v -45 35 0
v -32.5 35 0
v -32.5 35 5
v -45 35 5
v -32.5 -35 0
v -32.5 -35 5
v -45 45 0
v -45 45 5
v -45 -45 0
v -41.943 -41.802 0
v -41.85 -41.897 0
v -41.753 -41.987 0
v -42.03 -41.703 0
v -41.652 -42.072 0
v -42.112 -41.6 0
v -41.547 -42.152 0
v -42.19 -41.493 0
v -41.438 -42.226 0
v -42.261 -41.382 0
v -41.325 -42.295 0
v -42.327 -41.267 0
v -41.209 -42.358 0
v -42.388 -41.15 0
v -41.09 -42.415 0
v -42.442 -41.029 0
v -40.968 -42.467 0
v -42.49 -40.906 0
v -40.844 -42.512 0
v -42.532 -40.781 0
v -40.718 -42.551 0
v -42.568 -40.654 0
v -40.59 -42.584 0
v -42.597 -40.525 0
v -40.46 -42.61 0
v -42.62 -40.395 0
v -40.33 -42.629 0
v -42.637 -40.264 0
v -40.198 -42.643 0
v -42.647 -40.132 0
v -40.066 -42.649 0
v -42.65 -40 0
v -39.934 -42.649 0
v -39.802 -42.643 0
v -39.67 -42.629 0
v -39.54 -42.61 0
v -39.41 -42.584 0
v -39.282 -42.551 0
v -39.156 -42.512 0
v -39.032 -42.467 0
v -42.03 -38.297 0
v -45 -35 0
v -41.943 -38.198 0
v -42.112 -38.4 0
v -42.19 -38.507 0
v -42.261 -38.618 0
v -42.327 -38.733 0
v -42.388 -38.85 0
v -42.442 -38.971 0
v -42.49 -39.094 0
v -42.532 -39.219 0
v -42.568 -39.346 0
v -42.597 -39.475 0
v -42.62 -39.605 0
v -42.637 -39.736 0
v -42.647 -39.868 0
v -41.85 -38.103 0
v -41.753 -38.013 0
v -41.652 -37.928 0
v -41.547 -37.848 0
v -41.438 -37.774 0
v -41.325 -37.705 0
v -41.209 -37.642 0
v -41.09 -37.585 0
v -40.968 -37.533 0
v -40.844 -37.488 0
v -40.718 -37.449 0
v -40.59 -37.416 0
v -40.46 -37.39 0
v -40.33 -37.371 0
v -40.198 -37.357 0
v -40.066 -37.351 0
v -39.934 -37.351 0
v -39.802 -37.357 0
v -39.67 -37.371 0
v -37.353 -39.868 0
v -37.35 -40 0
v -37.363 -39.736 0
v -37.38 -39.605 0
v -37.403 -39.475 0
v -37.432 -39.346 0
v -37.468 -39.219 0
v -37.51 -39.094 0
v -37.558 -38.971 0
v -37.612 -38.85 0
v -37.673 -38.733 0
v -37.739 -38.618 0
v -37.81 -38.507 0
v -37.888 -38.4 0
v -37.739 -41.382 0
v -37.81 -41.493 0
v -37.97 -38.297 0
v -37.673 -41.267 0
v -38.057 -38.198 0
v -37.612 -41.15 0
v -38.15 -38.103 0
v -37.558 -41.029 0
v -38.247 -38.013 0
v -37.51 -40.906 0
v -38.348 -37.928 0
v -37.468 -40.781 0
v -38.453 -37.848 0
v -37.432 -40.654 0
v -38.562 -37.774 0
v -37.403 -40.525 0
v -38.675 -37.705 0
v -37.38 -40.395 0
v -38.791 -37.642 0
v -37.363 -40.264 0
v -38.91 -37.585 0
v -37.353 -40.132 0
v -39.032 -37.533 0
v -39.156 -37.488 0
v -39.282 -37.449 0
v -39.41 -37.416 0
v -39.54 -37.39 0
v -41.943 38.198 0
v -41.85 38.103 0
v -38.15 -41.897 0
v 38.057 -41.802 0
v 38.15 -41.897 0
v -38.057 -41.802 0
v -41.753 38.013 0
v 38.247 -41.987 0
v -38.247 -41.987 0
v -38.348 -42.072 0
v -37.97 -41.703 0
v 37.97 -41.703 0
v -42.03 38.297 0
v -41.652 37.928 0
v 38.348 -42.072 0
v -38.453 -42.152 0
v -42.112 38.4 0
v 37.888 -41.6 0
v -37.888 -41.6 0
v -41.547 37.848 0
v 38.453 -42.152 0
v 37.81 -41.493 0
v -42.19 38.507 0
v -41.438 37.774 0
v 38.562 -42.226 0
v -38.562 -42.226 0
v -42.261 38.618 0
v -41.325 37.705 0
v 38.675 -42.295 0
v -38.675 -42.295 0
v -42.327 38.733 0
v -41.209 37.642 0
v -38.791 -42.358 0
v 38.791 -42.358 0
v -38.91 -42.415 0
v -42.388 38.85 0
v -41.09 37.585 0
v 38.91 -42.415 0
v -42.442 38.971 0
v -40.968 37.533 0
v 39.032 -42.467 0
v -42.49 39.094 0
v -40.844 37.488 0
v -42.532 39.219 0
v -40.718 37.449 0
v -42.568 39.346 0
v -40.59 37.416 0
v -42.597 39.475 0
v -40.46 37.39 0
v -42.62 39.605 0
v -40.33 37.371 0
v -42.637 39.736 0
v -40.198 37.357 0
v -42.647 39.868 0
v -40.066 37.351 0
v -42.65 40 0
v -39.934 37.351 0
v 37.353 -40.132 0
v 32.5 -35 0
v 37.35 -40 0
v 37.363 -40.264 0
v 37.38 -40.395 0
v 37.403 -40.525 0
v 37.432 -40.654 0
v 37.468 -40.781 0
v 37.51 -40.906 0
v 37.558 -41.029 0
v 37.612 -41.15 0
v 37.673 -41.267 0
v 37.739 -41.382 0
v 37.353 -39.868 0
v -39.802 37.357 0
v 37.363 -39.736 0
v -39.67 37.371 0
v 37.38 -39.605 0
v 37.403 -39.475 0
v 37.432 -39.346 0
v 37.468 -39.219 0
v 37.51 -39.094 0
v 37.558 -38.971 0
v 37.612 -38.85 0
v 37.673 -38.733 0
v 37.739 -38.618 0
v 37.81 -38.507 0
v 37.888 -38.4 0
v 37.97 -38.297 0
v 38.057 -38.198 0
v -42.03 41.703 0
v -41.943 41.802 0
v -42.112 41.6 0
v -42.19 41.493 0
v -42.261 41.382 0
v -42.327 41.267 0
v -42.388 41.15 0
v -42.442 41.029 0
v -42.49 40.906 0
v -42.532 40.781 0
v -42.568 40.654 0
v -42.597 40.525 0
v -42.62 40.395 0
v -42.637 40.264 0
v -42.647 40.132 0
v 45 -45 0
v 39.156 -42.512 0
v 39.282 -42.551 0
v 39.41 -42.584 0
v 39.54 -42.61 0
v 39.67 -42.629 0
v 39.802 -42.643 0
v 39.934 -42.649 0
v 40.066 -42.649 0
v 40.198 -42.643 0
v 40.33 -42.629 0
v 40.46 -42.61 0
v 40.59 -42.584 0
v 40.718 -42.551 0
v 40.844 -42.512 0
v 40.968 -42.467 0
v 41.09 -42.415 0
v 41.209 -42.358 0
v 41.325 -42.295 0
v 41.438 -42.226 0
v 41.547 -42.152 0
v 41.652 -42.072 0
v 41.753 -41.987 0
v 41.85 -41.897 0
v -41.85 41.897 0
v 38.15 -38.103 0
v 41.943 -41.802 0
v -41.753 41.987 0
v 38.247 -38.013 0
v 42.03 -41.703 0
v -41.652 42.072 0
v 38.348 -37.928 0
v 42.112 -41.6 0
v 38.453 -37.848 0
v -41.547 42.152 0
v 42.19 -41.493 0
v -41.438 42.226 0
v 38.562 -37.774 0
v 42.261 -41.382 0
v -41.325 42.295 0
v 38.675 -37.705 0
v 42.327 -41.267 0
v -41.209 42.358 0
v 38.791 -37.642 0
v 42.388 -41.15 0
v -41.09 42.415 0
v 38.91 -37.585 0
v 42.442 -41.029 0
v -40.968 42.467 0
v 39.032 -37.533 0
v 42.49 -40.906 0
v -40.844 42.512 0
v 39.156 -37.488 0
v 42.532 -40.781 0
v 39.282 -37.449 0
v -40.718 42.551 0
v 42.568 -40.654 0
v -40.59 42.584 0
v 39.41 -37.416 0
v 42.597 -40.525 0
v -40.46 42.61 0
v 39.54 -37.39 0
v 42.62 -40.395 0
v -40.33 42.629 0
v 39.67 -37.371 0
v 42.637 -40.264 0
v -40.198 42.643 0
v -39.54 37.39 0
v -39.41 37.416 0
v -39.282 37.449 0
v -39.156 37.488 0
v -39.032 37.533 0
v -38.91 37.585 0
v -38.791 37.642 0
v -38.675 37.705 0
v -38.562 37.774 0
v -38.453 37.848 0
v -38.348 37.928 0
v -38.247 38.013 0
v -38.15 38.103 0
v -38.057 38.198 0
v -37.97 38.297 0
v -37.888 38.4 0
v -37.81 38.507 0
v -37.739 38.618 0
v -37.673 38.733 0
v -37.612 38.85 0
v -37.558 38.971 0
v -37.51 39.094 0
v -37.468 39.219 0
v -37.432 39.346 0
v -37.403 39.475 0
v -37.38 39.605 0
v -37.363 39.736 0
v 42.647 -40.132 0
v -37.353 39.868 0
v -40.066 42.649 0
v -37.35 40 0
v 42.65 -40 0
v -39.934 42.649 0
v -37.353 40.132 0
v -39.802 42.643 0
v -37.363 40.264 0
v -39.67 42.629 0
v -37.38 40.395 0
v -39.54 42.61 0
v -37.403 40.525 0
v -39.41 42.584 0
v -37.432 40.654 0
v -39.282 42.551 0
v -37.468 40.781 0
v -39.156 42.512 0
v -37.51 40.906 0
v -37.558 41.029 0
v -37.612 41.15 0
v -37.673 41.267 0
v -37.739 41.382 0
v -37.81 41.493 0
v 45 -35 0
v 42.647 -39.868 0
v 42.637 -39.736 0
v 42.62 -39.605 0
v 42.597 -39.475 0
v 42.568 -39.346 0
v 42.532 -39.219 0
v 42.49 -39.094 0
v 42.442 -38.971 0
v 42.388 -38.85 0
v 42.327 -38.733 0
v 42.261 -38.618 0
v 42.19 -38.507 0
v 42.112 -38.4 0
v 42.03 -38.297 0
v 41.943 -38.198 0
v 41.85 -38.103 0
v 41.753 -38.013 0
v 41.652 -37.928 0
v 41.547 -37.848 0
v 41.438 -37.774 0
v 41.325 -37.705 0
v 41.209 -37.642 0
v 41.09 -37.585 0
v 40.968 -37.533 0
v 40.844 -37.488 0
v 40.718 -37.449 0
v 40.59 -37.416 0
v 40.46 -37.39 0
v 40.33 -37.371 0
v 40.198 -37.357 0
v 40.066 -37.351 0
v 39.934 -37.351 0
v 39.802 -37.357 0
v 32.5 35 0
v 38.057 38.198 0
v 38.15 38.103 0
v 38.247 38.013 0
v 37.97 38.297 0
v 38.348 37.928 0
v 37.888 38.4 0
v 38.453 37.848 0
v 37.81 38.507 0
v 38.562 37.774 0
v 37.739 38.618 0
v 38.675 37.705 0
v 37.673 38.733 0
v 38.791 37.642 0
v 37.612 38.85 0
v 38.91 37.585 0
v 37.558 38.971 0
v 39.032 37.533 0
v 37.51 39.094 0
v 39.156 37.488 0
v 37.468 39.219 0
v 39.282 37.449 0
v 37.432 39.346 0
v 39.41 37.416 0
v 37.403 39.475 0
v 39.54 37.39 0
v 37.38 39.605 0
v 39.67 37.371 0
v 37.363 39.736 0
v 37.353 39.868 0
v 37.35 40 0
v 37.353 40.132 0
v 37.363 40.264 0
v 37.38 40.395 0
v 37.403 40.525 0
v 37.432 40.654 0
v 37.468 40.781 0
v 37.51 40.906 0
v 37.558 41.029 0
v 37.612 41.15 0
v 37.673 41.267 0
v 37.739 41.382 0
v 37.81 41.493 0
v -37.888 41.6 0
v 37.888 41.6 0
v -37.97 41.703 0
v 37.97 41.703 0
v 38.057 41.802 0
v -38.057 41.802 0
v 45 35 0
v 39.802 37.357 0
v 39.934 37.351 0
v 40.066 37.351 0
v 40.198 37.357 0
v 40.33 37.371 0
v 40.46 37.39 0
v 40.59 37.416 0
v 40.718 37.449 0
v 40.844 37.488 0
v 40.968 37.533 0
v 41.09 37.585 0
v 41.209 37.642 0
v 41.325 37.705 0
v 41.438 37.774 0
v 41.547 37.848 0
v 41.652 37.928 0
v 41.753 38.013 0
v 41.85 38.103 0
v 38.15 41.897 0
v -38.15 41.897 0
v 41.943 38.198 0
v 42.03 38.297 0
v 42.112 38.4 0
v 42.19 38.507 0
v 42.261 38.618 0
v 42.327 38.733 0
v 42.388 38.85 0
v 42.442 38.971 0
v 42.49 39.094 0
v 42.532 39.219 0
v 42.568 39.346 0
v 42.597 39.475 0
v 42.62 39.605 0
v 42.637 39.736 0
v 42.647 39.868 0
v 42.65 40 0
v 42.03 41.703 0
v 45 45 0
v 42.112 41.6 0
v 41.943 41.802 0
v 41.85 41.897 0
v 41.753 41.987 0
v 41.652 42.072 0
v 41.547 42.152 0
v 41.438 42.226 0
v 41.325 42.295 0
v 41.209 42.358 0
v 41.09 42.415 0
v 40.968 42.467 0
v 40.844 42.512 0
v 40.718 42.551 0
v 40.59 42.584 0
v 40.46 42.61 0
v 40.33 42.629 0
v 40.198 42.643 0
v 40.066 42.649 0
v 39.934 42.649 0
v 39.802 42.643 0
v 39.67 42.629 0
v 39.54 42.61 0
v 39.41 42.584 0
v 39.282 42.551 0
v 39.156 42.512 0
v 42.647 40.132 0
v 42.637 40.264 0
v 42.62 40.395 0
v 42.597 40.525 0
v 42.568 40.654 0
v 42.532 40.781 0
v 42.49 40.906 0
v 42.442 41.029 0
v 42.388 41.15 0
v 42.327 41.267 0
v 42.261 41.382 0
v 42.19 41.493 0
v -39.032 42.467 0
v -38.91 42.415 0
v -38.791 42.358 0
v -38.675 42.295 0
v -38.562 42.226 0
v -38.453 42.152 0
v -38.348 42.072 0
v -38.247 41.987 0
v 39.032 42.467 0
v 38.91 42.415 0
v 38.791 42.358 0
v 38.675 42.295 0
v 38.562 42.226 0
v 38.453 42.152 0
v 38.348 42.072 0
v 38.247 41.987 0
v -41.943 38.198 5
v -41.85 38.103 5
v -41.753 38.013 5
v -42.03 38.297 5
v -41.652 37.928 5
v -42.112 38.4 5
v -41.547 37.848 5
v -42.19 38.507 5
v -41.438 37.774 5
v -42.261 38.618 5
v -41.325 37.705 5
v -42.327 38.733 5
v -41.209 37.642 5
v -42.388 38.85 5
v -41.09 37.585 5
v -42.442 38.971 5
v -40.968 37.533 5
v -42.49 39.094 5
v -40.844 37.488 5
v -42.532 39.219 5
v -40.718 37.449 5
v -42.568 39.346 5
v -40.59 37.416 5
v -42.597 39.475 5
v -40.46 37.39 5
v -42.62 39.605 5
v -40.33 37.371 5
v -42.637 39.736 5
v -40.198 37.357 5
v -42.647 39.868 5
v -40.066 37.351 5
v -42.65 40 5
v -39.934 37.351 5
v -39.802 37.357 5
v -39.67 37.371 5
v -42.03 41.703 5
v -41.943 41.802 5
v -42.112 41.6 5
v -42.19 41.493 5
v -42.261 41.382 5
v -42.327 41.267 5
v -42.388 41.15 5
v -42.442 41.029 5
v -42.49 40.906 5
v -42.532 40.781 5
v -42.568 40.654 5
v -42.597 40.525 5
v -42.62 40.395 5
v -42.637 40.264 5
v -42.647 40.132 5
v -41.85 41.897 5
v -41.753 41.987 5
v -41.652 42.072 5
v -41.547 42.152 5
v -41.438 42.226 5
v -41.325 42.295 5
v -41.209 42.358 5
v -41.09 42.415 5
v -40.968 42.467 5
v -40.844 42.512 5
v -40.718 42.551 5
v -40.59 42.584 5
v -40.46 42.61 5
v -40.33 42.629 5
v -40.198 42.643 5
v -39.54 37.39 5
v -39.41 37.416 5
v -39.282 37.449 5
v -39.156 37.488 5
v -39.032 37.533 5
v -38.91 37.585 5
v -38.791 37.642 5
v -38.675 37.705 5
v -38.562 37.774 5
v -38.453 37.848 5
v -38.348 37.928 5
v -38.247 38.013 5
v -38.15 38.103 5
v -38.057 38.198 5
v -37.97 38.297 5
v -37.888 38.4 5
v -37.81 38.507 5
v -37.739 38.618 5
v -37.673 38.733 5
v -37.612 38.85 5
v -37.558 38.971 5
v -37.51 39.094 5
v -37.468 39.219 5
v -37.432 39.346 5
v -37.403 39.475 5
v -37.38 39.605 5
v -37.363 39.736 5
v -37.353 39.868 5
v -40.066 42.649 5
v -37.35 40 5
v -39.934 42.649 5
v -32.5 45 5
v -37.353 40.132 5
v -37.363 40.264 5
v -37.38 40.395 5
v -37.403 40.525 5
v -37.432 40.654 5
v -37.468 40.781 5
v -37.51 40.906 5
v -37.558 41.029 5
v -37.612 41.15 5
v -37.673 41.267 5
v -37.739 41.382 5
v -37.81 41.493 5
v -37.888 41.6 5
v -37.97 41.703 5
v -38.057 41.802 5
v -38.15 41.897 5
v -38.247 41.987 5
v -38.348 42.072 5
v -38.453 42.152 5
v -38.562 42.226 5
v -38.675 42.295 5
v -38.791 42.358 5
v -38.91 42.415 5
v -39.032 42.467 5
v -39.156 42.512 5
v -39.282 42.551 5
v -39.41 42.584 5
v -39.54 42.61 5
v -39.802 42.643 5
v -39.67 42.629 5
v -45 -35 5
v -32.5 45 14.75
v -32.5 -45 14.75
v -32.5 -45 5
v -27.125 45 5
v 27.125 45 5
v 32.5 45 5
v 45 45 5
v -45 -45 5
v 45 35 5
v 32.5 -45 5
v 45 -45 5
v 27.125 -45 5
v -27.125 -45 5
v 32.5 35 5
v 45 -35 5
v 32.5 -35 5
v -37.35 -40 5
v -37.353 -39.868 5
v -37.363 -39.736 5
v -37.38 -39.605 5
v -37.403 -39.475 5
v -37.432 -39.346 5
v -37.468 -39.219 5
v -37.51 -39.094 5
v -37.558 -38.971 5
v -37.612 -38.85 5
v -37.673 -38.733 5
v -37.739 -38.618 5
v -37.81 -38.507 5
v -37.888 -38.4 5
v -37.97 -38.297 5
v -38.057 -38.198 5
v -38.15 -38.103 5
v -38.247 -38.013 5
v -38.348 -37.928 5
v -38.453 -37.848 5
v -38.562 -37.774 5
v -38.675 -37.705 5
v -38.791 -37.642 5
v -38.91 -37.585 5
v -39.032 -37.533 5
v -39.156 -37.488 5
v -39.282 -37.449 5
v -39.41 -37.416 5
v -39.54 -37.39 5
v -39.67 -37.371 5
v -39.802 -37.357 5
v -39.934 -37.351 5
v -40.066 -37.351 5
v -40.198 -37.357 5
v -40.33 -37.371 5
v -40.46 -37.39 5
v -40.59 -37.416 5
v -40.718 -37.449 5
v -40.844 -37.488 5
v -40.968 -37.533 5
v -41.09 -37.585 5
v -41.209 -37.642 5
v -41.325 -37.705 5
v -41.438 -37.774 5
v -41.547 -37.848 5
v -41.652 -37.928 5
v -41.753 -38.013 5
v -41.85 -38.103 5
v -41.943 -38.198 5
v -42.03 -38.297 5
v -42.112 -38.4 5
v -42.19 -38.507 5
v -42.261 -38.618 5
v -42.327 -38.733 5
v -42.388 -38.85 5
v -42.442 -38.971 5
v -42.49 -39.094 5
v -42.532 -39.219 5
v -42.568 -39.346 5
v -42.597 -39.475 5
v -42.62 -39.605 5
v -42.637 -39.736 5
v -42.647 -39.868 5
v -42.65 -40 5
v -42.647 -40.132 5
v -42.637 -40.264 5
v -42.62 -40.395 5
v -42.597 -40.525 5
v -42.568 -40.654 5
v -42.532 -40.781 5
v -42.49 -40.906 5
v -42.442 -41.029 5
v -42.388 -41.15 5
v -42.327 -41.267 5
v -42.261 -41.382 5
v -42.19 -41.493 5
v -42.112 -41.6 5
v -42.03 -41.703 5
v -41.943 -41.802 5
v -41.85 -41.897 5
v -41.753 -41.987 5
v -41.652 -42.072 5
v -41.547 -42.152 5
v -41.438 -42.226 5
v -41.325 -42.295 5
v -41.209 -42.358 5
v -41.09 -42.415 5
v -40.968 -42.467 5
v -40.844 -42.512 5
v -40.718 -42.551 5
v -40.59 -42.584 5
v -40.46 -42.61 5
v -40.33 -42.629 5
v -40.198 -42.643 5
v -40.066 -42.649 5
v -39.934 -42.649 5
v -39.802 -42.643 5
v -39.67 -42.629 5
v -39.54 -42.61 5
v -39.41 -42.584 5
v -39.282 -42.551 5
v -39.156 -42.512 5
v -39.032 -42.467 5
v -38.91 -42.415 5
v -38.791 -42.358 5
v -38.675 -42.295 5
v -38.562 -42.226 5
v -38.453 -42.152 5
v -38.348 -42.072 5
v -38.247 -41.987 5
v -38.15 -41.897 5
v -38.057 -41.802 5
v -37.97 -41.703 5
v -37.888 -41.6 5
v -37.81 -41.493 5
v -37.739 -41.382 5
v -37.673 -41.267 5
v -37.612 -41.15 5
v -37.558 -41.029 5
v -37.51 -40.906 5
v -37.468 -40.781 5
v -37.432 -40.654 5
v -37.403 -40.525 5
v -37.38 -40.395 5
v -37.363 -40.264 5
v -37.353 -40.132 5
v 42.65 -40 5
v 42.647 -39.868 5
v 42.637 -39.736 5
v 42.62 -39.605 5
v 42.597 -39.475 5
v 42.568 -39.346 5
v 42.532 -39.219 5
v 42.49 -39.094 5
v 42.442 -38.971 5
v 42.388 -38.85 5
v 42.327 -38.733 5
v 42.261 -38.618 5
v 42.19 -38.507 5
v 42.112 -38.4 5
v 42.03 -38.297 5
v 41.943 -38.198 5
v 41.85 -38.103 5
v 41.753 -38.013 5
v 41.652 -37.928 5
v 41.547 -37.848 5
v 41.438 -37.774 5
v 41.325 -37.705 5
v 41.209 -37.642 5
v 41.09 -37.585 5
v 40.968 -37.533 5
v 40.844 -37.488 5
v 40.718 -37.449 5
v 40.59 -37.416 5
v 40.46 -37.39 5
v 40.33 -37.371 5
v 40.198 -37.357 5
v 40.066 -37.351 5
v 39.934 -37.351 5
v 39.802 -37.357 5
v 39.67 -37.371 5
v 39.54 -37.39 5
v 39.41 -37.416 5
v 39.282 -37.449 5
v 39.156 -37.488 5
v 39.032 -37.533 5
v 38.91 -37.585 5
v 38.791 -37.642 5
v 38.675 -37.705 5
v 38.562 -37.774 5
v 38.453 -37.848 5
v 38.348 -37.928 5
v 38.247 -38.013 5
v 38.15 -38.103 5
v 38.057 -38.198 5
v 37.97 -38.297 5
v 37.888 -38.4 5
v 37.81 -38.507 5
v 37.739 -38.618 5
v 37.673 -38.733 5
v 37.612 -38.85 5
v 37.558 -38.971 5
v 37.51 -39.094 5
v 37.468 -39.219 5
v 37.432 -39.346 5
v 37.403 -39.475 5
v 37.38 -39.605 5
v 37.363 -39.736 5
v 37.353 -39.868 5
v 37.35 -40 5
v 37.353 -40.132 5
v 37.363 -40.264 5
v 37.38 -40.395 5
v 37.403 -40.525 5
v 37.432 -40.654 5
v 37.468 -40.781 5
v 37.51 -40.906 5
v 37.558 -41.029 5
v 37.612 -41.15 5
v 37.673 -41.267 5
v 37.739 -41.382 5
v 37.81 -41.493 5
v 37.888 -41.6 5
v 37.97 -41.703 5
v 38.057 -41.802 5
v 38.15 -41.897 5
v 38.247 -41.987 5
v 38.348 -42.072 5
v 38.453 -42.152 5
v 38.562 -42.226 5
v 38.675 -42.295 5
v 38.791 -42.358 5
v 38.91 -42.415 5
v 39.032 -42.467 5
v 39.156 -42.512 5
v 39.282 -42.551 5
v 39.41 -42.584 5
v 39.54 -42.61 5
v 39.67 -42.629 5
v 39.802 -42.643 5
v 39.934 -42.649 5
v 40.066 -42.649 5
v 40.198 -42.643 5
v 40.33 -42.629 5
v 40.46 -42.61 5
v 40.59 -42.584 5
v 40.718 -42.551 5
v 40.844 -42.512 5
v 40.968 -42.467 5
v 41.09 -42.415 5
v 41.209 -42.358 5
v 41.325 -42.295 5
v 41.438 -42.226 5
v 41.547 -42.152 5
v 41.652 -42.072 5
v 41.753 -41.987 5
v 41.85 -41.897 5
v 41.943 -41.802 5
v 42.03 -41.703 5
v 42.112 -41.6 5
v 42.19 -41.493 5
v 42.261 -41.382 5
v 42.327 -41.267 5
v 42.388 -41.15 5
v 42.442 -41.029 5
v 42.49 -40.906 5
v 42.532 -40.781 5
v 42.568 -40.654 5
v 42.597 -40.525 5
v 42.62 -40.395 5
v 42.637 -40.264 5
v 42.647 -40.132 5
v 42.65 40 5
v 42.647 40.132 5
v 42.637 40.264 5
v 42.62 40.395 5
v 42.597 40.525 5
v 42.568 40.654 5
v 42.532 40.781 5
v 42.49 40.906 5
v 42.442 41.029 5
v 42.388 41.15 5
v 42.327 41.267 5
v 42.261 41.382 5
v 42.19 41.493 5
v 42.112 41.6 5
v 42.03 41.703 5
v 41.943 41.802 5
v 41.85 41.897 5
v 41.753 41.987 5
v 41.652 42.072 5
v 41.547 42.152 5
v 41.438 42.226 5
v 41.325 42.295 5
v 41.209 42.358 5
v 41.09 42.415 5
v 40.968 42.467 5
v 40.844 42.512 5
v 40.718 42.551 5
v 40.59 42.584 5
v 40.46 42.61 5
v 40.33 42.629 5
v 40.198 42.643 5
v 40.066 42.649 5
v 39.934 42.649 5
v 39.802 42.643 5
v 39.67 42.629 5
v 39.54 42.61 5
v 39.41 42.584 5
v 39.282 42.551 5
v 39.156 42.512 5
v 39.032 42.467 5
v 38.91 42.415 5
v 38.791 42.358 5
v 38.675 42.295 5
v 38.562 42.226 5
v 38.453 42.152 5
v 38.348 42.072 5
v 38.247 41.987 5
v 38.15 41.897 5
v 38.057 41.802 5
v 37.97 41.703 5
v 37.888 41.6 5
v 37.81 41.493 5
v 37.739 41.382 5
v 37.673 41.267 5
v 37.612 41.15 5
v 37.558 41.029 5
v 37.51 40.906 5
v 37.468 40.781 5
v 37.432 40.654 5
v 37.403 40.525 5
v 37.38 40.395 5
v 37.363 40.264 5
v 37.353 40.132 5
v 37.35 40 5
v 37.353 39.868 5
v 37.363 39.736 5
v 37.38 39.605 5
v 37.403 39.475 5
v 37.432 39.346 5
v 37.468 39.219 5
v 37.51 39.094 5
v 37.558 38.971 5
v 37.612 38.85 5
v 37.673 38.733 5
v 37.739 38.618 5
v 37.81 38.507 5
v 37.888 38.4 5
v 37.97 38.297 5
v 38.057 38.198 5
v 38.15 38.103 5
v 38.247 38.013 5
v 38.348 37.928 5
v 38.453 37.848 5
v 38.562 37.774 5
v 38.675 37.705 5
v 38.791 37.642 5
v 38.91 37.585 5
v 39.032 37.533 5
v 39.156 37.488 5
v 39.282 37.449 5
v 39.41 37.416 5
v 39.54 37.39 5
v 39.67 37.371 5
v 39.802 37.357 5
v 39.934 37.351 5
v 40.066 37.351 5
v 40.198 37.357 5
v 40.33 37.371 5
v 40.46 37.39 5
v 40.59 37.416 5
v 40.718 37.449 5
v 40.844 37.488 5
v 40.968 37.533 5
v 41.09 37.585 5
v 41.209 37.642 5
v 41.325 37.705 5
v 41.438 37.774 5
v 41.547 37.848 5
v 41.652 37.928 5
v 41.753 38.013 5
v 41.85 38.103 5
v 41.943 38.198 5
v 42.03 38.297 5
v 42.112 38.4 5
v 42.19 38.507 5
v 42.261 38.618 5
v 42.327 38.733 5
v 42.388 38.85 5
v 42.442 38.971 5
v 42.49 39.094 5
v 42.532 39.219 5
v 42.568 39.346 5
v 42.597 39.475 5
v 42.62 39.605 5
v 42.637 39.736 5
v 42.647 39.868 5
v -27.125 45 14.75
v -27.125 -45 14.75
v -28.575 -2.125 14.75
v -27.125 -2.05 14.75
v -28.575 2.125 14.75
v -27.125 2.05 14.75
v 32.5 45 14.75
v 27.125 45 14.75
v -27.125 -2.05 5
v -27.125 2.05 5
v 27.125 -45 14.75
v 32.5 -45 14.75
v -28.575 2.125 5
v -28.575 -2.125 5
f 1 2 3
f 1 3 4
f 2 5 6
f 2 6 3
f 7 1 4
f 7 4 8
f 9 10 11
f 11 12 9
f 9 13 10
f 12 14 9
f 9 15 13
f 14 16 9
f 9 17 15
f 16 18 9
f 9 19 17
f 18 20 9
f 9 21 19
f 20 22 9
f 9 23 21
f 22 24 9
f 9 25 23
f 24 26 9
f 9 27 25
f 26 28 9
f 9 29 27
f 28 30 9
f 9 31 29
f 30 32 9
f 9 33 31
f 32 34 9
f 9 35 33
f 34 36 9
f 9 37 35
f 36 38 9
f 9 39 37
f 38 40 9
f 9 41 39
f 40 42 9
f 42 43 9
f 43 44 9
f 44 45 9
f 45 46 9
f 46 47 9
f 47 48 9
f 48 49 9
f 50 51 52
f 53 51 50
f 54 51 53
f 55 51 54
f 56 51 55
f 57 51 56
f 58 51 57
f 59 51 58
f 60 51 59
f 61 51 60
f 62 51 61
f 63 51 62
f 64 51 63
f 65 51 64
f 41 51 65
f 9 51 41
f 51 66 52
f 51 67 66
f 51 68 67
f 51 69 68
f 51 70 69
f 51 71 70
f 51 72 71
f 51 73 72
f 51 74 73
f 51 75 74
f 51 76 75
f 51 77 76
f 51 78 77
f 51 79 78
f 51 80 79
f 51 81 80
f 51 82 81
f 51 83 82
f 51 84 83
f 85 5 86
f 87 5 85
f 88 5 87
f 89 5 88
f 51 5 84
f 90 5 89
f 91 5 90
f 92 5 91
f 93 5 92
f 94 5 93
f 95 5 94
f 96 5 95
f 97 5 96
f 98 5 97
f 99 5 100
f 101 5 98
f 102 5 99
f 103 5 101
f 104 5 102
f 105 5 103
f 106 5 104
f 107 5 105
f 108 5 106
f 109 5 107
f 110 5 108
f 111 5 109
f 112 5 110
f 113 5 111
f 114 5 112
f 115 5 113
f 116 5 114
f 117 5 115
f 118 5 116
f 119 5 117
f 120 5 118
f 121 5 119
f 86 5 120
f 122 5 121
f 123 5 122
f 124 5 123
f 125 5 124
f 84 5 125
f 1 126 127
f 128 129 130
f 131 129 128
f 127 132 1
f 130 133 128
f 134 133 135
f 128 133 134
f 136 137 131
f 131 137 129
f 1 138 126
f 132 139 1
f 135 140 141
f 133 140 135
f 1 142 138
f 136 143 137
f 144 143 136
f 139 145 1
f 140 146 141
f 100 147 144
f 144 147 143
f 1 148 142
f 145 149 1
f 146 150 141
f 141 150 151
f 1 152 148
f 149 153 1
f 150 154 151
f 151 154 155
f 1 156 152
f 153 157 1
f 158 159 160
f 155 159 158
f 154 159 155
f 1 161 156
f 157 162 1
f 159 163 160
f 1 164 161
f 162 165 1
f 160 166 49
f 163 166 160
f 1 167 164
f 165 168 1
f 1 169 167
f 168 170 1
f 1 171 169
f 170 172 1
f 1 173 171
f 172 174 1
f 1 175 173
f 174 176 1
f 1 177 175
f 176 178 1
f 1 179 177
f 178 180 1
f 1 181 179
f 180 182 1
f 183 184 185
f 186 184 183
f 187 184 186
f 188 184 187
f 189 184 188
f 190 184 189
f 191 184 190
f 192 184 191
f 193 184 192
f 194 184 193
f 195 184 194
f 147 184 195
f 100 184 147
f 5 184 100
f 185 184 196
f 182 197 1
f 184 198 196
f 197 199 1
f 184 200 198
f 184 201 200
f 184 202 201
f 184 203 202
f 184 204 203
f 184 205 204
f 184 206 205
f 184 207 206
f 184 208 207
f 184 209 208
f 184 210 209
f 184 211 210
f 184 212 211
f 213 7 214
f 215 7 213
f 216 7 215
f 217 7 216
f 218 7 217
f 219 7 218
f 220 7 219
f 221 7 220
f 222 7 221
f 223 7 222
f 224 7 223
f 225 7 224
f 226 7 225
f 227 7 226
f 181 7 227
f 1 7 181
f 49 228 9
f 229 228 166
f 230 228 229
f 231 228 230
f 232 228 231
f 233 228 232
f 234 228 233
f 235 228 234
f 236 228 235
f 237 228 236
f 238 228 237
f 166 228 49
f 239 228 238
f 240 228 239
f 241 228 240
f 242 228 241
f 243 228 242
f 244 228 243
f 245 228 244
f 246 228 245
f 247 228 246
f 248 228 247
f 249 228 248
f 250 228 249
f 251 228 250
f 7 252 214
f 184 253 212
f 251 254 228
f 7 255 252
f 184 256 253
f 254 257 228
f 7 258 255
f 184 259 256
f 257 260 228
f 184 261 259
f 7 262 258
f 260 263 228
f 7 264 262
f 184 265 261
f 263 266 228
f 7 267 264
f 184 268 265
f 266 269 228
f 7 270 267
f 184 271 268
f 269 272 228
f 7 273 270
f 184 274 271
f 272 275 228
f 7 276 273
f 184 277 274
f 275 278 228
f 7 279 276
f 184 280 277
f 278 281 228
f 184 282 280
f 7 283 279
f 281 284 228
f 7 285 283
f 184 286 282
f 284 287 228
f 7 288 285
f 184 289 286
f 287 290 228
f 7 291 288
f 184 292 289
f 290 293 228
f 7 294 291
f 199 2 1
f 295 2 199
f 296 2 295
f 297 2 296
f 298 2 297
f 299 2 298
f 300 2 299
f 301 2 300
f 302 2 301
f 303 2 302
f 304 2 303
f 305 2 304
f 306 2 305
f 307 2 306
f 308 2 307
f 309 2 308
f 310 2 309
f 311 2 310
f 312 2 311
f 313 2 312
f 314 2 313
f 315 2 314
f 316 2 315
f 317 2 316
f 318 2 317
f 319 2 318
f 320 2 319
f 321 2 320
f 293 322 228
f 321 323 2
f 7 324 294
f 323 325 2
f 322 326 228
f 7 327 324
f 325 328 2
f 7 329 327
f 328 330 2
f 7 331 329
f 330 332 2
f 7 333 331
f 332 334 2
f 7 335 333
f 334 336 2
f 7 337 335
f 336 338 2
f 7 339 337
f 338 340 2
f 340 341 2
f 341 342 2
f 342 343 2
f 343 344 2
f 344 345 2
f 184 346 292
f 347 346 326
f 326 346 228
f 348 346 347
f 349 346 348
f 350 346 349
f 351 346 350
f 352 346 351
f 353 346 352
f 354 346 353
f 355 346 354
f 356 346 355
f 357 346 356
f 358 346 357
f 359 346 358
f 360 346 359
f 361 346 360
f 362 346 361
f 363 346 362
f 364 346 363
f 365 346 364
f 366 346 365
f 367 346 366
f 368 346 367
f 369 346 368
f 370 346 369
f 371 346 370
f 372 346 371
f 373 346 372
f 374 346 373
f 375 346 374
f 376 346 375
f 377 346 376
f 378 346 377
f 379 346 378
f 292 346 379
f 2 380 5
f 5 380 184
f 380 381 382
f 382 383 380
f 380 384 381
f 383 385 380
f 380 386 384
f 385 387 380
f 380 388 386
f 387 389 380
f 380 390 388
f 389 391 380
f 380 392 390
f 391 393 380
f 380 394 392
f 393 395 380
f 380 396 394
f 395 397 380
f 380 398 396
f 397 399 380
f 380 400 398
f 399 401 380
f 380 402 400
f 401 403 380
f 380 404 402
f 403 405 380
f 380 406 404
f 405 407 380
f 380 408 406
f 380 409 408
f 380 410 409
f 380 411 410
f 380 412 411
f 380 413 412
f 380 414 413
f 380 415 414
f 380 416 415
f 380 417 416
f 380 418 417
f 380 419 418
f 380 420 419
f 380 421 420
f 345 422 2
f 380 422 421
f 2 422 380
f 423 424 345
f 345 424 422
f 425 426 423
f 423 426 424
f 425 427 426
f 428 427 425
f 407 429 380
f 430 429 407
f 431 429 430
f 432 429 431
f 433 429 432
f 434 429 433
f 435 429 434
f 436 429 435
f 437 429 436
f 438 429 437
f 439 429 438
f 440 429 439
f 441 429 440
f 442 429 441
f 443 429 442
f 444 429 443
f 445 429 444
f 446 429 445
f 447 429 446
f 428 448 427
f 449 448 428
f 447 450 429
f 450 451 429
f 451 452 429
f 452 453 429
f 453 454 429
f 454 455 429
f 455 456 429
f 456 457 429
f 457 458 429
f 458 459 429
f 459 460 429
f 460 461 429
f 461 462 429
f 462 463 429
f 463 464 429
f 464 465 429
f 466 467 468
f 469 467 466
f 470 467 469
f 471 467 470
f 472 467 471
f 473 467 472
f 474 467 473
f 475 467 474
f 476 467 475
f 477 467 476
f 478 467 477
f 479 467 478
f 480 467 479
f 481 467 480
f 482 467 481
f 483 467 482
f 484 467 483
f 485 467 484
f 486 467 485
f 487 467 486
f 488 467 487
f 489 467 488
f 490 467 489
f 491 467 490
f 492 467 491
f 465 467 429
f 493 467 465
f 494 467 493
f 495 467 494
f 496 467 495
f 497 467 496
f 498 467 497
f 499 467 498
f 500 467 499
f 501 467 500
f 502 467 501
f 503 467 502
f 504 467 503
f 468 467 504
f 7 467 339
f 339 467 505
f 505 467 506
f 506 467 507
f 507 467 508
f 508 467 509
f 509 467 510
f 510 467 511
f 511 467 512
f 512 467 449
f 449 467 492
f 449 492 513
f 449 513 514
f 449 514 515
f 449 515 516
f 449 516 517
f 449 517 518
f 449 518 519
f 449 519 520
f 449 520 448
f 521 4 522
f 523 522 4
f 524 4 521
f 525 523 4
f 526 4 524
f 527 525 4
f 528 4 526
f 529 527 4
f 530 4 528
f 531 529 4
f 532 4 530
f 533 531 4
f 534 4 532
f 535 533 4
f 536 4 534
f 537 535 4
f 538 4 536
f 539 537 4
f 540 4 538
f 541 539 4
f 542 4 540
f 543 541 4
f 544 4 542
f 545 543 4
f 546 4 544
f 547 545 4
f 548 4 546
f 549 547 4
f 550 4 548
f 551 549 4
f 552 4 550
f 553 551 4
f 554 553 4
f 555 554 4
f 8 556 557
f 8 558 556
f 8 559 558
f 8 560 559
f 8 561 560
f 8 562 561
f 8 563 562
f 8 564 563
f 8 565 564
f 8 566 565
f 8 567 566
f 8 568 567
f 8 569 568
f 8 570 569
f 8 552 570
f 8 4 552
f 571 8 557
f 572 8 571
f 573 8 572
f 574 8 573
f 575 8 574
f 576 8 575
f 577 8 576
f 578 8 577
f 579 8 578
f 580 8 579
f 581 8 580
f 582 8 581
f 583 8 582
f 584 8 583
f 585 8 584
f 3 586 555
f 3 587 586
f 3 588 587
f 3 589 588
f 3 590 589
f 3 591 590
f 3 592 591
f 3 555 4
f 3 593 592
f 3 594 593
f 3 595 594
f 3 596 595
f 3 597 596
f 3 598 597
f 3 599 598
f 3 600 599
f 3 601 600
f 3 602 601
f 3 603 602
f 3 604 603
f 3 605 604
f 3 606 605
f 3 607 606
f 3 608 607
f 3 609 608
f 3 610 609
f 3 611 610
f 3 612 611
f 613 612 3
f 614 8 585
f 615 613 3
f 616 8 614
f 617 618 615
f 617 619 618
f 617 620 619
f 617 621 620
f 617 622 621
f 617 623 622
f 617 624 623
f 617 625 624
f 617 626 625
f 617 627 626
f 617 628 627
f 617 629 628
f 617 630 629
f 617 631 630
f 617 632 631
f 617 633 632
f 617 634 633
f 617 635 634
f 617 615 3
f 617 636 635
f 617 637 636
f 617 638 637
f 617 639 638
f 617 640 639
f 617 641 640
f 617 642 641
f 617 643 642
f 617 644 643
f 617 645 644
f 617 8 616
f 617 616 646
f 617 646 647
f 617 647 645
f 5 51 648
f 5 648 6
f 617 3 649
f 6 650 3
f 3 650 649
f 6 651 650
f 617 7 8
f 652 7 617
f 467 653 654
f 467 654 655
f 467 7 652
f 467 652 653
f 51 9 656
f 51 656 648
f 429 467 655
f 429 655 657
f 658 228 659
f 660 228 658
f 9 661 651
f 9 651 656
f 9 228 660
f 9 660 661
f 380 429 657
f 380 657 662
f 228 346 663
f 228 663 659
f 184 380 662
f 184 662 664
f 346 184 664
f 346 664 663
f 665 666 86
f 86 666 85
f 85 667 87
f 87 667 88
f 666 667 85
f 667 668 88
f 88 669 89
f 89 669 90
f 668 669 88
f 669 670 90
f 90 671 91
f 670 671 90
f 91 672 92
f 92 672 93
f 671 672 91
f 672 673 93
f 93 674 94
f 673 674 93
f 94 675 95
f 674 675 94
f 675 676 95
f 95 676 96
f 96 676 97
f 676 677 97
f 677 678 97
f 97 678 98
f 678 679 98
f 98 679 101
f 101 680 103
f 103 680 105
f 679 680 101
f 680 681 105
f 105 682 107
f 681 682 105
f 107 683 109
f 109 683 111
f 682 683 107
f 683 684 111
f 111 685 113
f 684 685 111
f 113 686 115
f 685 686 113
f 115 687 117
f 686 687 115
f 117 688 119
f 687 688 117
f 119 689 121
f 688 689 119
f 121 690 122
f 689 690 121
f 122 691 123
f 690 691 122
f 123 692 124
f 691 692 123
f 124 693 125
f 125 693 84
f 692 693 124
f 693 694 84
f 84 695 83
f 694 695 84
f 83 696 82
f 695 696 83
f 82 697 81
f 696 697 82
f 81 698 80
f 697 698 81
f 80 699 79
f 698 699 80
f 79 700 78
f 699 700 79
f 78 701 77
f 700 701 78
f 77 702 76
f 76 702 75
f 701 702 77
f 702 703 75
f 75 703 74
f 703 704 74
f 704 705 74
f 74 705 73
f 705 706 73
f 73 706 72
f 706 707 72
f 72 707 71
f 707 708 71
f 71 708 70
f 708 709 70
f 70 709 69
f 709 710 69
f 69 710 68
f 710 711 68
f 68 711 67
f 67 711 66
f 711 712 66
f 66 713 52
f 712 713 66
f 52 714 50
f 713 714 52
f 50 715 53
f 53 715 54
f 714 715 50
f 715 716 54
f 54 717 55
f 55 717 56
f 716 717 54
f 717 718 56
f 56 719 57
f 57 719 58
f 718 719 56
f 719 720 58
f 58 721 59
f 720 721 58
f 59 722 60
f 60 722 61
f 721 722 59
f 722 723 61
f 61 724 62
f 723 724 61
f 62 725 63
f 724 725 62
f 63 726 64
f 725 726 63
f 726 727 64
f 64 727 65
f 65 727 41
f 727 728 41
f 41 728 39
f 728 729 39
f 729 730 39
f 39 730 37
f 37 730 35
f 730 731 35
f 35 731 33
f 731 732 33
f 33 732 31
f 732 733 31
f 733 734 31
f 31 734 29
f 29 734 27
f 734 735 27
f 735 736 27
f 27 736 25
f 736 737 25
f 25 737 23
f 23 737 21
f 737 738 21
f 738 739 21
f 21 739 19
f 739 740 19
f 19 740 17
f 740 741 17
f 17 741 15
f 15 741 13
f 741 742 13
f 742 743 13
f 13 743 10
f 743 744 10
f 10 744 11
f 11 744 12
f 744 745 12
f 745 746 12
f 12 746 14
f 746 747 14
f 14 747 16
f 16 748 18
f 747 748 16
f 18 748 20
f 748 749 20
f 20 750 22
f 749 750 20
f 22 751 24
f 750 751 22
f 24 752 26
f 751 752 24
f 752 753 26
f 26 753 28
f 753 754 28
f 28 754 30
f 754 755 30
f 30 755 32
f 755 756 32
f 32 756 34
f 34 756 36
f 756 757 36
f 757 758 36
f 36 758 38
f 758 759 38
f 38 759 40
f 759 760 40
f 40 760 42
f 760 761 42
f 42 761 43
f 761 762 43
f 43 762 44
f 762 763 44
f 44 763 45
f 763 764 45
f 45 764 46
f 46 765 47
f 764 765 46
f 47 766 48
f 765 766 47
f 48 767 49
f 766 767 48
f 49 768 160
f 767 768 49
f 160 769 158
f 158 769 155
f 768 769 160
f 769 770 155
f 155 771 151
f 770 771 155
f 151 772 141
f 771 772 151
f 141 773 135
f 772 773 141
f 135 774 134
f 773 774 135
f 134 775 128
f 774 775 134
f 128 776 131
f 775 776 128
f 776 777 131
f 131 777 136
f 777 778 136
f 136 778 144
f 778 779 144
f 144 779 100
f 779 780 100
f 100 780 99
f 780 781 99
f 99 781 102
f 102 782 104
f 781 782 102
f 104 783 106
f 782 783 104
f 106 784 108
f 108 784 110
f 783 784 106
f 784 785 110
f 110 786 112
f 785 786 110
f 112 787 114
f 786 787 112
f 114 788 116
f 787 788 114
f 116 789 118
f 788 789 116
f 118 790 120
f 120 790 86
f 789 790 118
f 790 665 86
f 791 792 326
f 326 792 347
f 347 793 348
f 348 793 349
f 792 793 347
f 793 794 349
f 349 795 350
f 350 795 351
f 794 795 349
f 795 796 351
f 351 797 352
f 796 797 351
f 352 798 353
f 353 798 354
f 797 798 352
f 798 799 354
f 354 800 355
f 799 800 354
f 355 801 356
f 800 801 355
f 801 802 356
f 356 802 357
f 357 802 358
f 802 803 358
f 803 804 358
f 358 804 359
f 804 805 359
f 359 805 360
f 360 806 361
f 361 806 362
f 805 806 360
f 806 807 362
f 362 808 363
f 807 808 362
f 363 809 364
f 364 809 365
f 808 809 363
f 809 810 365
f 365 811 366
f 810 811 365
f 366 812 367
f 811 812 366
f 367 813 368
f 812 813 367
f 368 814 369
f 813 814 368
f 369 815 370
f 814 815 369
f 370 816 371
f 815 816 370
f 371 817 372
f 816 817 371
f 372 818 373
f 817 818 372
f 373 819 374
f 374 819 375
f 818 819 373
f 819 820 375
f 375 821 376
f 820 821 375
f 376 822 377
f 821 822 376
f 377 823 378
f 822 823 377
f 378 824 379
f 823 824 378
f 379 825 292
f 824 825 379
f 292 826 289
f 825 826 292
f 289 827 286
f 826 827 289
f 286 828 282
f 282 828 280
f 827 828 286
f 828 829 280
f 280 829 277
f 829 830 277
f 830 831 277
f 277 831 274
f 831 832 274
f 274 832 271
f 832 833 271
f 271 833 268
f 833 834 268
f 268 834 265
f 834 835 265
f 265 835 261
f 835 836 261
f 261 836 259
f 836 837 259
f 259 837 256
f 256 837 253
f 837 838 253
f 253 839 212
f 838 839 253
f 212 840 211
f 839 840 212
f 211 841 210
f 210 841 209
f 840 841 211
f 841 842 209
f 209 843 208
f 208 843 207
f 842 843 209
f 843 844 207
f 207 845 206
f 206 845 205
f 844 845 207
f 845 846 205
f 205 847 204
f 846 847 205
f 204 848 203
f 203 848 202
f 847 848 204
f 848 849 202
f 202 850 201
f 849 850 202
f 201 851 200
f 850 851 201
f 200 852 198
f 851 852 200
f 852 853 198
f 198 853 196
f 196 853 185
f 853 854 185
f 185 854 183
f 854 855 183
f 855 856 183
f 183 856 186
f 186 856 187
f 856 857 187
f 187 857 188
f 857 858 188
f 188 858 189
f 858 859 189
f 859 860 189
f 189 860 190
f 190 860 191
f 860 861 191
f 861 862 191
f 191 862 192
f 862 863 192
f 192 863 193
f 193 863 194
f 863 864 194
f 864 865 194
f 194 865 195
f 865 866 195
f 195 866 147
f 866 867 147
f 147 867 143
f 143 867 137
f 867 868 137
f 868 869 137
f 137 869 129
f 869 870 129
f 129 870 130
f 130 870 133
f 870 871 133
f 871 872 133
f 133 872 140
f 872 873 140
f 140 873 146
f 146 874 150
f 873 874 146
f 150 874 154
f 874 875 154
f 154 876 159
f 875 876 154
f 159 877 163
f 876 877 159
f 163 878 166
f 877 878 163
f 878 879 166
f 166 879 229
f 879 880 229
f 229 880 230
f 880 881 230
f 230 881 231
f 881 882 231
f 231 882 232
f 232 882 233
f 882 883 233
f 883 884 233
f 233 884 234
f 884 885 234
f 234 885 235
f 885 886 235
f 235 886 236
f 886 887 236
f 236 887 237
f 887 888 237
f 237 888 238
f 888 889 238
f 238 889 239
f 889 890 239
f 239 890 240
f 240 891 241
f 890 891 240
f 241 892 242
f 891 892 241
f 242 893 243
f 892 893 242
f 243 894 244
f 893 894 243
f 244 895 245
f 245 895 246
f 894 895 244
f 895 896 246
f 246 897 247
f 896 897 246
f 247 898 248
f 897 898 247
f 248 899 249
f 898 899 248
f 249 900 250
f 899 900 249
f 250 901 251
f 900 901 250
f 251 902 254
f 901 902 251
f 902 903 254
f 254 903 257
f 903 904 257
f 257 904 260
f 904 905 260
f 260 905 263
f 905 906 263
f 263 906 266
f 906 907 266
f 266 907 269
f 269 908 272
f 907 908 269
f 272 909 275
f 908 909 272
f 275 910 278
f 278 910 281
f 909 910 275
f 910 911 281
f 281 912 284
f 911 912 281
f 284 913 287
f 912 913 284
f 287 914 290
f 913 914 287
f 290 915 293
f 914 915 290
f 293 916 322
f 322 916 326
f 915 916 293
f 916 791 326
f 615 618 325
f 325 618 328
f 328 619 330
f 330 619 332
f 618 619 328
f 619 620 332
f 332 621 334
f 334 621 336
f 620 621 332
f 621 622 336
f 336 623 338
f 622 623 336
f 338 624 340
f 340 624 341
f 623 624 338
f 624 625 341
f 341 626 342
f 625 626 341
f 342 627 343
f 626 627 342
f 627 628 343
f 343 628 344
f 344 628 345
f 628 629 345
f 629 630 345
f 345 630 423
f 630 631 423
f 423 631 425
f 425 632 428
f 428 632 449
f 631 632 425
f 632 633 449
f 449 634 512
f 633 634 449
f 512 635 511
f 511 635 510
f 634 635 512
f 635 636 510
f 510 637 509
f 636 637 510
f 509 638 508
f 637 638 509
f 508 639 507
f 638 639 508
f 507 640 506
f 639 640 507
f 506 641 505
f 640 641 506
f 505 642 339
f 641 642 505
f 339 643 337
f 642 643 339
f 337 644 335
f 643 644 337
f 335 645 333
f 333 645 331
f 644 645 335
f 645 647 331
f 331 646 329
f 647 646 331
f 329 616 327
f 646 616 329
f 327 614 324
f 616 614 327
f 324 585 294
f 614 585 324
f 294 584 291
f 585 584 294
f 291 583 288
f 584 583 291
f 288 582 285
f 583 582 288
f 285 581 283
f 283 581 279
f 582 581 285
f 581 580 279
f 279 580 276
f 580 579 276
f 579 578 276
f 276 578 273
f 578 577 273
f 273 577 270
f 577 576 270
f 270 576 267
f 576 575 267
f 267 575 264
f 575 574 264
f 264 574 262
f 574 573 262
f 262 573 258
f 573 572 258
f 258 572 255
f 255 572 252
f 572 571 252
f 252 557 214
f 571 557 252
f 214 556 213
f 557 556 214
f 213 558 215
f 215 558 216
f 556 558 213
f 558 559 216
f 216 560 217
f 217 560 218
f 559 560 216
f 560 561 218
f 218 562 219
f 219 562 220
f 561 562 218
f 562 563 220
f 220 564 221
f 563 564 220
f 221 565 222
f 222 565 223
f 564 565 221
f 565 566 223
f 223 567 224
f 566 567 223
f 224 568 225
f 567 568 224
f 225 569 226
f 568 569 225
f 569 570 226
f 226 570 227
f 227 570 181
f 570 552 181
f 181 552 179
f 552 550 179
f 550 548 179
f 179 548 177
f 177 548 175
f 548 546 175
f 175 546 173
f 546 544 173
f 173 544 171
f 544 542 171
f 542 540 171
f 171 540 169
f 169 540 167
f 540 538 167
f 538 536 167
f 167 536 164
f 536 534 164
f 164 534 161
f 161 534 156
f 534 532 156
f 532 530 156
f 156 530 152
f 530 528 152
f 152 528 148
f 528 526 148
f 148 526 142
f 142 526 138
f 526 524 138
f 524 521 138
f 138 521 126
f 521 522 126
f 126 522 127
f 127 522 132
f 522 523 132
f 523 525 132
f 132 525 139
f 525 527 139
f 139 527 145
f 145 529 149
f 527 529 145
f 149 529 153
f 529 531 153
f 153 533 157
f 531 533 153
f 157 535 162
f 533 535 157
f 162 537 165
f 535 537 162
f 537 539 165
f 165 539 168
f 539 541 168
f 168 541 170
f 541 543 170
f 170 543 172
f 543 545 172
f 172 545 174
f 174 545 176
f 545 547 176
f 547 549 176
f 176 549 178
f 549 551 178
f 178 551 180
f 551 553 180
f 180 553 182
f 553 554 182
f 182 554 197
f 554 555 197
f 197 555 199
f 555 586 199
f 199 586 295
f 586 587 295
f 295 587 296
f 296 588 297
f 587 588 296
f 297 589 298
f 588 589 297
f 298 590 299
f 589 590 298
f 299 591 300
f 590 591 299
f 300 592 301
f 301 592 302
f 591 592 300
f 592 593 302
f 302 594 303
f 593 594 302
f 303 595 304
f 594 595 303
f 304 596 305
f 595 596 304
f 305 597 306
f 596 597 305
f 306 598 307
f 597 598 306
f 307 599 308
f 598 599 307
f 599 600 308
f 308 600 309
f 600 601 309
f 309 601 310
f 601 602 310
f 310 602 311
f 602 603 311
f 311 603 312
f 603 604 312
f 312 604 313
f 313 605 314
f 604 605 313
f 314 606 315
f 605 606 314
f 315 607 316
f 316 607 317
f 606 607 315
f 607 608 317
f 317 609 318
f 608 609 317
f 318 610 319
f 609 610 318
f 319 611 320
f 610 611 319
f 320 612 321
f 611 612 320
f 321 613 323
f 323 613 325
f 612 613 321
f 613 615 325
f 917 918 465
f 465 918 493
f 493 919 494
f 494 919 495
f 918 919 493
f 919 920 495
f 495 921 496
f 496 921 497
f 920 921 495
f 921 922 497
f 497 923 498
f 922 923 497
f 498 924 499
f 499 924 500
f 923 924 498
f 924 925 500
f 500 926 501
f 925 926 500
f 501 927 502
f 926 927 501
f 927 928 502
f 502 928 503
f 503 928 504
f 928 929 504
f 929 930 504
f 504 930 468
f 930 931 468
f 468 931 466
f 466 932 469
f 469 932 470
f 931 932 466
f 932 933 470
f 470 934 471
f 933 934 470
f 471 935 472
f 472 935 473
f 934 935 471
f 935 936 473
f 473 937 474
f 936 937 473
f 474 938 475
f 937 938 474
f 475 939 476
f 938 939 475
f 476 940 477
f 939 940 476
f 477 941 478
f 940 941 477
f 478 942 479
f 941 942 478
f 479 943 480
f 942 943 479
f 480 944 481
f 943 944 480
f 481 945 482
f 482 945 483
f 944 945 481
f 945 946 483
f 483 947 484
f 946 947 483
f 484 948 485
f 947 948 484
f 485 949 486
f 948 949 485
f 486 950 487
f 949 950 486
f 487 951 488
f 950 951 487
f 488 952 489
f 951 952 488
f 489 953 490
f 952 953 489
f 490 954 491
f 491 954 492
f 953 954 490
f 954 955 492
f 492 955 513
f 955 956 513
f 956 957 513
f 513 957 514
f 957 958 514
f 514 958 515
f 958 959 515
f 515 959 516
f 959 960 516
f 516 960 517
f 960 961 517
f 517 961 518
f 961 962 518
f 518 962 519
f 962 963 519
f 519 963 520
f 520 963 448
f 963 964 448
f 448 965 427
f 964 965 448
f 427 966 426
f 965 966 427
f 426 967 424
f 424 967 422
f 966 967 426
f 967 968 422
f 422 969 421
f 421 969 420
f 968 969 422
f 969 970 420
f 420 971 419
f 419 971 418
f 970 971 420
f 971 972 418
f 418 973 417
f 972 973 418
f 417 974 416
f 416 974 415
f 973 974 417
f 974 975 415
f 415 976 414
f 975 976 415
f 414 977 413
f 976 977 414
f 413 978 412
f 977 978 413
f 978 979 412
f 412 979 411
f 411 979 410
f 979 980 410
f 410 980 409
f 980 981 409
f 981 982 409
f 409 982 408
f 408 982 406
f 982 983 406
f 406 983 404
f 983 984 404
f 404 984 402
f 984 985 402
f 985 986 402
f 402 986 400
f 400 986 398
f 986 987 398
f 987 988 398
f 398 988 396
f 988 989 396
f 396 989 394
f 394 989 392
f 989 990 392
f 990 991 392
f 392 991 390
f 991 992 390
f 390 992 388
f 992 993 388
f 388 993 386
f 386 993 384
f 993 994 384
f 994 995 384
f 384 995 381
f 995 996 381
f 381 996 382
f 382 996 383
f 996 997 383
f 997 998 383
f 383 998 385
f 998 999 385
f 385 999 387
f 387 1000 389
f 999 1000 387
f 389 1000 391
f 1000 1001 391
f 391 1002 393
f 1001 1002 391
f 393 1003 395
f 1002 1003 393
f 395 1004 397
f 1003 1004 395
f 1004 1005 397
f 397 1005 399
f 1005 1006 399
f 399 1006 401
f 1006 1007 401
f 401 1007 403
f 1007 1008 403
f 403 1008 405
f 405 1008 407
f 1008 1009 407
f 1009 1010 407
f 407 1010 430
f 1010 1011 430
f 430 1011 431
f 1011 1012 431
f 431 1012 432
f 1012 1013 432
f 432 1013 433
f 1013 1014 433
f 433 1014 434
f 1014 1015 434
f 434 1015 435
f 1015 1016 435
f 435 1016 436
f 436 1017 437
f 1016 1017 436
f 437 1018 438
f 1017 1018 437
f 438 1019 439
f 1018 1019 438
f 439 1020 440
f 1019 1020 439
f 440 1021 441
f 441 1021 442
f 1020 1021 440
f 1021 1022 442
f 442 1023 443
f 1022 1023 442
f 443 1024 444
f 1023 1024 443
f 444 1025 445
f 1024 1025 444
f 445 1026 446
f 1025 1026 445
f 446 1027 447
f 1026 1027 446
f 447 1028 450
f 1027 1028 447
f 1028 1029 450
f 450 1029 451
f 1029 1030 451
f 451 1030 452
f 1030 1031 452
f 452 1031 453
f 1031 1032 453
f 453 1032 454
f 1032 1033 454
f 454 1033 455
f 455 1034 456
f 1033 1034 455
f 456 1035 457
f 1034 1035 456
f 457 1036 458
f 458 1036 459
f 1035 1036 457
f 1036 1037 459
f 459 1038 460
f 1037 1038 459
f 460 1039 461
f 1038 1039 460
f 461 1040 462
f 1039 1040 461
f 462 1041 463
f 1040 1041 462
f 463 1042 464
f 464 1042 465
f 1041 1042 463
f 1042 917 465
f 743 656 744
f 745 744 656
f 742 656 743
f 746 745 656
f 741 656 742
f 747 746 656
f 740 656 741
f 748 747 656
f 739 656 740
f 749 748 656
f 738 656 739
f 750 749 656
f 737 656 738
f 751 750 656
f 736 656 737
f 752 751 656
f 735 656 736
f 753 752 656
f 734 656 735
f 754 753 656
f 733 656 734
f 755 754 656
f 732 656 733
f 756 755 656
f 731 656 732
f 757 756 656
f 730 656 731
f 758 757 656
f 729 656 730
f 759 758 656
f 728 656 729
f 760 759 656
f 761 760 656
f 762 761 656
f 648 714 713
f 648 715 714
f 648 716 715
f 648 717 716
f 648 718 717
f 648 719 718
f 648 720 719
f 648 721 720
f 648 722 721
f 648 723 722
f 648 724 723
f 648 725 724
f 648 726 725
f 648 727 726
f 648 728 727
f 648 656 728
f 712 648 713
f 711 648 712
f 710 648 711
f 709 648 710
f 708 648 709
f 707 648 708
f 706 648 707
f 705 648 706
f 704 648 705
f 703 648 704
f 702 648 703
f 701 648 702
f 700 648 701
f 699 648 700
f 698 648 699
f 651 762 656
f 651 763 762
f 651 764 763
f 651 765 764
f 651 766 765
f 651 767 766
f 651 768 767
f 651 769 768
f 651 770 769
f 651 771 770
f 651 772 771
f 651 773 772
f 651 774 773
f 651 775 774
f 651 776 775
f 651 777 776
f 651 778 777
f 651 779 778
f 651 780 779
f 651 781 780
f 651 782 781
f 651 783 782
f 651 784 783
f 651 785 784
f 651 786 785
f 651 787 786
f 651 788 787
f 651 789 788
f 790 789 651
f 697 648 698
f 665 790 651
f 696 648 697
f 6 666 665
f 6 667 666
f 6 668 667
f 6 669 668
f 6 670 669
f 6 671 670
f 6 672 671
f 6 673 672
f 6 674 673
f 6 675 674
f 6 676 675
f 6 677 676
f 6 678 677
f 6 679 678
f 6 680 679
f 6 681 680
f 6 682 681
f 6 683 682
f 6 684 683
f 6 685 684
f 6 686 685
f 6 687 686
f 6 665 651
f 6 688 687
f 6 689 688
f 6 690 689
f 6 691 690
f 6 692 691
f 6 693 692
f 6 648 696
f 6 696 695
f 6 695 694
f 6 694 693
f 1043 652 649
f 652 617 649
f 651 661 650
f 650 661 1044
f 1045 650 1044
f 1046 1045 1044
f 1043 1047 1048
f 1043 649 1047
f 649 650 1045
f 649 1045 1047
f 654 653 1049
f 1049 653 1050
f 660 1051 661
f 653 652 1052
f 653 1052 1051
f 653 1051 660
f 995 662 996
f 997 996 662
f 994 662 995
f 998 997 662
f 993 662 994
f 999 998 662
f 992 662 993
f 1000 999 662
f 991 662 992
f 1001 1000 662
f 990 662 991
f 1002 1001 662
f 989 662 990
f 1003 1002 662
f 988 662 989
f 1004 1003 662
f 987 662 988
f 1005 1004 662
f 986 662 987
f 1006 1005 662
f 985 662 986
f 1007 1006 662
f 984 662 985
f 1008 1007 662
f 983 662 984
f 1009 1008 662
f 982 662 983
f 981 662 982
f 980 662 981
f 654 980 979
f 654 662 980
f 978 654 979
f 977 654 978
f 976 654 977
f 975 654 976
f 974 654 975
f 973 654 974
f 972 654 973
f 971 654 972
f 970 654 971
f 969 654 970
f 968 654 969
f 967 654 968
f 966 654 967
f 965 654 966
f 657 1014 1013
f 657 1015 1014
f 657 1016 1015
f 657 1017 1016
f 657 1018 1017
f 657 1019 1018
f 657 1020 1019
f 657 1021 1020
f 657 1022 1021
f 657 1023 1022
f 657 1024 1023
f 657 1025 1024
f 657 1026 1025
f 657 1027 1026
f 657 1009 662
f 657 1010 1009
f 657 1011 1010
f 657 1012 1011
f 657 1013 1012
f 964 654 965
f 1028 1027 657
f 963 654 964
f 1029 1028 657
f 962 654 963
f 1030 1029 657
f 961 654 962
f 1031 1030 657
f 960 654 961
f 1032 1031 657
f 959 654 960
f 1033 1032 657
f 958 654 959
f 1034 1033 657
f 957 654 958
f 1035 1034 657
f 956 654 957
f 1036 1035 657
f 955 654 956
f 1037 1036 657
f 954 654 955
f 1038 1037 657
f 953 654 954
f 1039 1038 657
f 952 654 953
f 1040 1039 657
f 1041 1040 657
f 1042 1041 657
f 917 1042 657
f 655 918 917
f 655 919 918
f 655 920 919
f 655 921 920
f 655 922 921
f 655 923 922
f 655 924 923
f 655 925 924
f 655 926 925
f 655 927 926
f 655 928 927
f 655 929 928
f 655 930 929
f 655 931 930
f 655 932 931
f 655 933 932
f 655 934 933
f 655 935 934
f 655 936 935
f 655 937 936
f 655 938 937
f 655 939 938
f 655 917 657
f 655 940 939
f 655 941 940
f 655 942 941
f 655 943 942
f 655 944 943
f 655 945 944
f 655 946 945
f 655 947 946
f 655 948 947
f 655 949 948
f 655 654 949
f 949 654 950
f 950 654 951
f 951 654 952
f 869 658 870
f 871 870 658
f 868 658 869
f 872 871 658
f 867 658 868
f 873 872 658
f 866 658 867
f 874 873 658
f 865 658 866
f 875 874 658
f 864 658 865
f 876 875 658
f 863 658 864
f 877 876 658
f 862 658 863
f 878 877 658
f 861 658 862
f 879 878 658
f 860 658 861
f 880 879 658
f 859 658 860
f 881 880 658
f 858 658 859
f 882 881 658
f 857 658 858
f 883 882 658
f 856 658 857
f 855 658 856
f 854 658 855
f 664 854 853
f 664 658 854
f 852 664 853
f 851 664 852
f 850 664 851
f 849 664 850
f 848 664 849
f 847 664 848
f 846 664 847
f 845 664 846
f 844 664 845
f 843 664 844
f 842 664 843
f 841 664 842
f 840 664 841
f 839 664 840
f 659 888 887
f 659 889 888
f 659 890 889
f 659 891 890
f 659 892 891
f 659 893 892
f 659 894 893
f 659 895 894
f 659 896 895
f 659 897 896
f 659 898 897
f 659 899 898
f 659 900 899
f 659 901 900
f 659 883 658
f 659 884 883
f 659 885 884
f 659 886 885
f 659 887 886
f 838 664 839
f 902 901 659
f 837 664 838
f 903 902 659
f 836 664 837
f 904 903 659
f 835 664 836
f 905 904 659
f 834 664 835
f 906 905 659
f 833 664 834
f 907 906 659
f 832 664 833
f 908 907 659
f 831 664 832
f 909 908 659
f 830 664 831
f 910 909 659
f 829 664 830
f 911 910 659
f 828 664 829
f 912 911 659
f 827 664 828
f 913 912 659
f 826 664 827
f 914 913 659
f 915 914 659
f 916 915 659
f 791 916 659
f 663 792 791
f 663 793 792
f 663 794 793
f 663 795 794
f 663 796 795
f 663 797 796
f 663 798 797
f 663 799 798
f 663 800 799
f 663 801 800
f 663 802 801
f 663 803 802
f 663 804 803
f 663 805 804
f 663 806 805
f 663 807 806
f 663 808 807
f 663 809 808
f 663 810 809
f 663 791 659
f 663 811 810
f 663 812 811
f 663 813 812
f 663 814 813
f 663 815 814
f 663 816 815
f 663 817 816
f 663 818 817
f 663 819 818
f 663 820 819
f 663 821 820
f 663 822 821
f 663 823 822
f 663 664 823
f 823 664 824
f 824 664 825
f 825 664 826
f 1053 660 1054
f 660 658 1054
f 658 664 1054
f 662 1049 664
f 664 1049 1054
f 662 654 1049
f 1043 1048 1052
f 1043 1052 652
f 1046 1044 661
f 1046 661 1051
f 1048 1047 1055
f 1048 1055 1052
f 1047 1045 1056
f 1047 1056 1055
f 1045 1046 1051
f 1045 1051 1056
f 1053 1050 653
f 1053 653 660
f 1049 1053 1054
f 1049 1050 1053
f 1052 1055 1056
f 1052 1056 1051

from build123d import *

# Parameters (mm, degrees)
PAD_DEPTH       = 5
SKETCH001_W     = 65
SKETCH001_H     = 90
PAD001_DEPTH    = 9.75
SKETCH002_W     = 54.25
SKETCH002_H     = 90
POCKET_DEPTH    = 9.75
POCKET001_DEPTH = 9.75
SKETCH004_R     = 2.65
POCKET002_DEPTH = 5


with BuildPart() as part:
    # Sketch → Pad (new body)
    with BuildSketch(Plane.XY):
        Polygon((-32.5, 35), (-45, 35), (-45, 45), (45, 45), (45, 35), (32.5, 35), (32.5, -35), (45, -35), (45, -45), (-45, -45), (-45, -35), (-32.5, -35), align=None)
    extrude(amount=PAD_DEPTH)

    # Sketch001 (on Face14 of Pad) → Pad001 (join)
    with BuildSketch(Plane.XY.offset(5)):
        Rectangle(SKETCH001_W, SKETCH001_H)
    extrude(amount=PAD001_DEPTH)

    # Sketch002 (on Face19 of Pad001) → Pocket (cut)
    with BuildSketch(Plane.XY.offset(14.75)):
        Rectangle(SKETCH002_W, SKETCH002_H)
    extrude(amount=-POCKET_DEPTH, mode=Mode.SUBTRACT)

    # Sketch003 (on Face19 of Pocket) → Pocket001 (cut)
    with BuildSketch(Plane.XY.offset(14.75)):
        Polygon((-27.125, -2.05), (-28.575, -2.125), (-28.575, 2.125), (-27.125, 2.05), align=None)
    extrude(amount=-POCKET001_DEPTH, mode=Mode.SUBTRACT)

    # Sketch004 (on Face16 of Pocket001) → Pocket002 (cut)
    with BuildSketch(Plane.XY.offset(5)):
        with Locations((-40, 40)):
            Circle(SKETCH004_R)
        with Locations((40, 40)):
            Circle(SKETCH004_R)
        with Locations((40, -40)):
            Circle(SKETCH004_R)
        with Locations((-40, -40)):
            Circle(SKETCH004_R)
    extrude(amount=-POCKET002_DEPTH, mode=Mode.SUBTRACT)


solid = part.part
